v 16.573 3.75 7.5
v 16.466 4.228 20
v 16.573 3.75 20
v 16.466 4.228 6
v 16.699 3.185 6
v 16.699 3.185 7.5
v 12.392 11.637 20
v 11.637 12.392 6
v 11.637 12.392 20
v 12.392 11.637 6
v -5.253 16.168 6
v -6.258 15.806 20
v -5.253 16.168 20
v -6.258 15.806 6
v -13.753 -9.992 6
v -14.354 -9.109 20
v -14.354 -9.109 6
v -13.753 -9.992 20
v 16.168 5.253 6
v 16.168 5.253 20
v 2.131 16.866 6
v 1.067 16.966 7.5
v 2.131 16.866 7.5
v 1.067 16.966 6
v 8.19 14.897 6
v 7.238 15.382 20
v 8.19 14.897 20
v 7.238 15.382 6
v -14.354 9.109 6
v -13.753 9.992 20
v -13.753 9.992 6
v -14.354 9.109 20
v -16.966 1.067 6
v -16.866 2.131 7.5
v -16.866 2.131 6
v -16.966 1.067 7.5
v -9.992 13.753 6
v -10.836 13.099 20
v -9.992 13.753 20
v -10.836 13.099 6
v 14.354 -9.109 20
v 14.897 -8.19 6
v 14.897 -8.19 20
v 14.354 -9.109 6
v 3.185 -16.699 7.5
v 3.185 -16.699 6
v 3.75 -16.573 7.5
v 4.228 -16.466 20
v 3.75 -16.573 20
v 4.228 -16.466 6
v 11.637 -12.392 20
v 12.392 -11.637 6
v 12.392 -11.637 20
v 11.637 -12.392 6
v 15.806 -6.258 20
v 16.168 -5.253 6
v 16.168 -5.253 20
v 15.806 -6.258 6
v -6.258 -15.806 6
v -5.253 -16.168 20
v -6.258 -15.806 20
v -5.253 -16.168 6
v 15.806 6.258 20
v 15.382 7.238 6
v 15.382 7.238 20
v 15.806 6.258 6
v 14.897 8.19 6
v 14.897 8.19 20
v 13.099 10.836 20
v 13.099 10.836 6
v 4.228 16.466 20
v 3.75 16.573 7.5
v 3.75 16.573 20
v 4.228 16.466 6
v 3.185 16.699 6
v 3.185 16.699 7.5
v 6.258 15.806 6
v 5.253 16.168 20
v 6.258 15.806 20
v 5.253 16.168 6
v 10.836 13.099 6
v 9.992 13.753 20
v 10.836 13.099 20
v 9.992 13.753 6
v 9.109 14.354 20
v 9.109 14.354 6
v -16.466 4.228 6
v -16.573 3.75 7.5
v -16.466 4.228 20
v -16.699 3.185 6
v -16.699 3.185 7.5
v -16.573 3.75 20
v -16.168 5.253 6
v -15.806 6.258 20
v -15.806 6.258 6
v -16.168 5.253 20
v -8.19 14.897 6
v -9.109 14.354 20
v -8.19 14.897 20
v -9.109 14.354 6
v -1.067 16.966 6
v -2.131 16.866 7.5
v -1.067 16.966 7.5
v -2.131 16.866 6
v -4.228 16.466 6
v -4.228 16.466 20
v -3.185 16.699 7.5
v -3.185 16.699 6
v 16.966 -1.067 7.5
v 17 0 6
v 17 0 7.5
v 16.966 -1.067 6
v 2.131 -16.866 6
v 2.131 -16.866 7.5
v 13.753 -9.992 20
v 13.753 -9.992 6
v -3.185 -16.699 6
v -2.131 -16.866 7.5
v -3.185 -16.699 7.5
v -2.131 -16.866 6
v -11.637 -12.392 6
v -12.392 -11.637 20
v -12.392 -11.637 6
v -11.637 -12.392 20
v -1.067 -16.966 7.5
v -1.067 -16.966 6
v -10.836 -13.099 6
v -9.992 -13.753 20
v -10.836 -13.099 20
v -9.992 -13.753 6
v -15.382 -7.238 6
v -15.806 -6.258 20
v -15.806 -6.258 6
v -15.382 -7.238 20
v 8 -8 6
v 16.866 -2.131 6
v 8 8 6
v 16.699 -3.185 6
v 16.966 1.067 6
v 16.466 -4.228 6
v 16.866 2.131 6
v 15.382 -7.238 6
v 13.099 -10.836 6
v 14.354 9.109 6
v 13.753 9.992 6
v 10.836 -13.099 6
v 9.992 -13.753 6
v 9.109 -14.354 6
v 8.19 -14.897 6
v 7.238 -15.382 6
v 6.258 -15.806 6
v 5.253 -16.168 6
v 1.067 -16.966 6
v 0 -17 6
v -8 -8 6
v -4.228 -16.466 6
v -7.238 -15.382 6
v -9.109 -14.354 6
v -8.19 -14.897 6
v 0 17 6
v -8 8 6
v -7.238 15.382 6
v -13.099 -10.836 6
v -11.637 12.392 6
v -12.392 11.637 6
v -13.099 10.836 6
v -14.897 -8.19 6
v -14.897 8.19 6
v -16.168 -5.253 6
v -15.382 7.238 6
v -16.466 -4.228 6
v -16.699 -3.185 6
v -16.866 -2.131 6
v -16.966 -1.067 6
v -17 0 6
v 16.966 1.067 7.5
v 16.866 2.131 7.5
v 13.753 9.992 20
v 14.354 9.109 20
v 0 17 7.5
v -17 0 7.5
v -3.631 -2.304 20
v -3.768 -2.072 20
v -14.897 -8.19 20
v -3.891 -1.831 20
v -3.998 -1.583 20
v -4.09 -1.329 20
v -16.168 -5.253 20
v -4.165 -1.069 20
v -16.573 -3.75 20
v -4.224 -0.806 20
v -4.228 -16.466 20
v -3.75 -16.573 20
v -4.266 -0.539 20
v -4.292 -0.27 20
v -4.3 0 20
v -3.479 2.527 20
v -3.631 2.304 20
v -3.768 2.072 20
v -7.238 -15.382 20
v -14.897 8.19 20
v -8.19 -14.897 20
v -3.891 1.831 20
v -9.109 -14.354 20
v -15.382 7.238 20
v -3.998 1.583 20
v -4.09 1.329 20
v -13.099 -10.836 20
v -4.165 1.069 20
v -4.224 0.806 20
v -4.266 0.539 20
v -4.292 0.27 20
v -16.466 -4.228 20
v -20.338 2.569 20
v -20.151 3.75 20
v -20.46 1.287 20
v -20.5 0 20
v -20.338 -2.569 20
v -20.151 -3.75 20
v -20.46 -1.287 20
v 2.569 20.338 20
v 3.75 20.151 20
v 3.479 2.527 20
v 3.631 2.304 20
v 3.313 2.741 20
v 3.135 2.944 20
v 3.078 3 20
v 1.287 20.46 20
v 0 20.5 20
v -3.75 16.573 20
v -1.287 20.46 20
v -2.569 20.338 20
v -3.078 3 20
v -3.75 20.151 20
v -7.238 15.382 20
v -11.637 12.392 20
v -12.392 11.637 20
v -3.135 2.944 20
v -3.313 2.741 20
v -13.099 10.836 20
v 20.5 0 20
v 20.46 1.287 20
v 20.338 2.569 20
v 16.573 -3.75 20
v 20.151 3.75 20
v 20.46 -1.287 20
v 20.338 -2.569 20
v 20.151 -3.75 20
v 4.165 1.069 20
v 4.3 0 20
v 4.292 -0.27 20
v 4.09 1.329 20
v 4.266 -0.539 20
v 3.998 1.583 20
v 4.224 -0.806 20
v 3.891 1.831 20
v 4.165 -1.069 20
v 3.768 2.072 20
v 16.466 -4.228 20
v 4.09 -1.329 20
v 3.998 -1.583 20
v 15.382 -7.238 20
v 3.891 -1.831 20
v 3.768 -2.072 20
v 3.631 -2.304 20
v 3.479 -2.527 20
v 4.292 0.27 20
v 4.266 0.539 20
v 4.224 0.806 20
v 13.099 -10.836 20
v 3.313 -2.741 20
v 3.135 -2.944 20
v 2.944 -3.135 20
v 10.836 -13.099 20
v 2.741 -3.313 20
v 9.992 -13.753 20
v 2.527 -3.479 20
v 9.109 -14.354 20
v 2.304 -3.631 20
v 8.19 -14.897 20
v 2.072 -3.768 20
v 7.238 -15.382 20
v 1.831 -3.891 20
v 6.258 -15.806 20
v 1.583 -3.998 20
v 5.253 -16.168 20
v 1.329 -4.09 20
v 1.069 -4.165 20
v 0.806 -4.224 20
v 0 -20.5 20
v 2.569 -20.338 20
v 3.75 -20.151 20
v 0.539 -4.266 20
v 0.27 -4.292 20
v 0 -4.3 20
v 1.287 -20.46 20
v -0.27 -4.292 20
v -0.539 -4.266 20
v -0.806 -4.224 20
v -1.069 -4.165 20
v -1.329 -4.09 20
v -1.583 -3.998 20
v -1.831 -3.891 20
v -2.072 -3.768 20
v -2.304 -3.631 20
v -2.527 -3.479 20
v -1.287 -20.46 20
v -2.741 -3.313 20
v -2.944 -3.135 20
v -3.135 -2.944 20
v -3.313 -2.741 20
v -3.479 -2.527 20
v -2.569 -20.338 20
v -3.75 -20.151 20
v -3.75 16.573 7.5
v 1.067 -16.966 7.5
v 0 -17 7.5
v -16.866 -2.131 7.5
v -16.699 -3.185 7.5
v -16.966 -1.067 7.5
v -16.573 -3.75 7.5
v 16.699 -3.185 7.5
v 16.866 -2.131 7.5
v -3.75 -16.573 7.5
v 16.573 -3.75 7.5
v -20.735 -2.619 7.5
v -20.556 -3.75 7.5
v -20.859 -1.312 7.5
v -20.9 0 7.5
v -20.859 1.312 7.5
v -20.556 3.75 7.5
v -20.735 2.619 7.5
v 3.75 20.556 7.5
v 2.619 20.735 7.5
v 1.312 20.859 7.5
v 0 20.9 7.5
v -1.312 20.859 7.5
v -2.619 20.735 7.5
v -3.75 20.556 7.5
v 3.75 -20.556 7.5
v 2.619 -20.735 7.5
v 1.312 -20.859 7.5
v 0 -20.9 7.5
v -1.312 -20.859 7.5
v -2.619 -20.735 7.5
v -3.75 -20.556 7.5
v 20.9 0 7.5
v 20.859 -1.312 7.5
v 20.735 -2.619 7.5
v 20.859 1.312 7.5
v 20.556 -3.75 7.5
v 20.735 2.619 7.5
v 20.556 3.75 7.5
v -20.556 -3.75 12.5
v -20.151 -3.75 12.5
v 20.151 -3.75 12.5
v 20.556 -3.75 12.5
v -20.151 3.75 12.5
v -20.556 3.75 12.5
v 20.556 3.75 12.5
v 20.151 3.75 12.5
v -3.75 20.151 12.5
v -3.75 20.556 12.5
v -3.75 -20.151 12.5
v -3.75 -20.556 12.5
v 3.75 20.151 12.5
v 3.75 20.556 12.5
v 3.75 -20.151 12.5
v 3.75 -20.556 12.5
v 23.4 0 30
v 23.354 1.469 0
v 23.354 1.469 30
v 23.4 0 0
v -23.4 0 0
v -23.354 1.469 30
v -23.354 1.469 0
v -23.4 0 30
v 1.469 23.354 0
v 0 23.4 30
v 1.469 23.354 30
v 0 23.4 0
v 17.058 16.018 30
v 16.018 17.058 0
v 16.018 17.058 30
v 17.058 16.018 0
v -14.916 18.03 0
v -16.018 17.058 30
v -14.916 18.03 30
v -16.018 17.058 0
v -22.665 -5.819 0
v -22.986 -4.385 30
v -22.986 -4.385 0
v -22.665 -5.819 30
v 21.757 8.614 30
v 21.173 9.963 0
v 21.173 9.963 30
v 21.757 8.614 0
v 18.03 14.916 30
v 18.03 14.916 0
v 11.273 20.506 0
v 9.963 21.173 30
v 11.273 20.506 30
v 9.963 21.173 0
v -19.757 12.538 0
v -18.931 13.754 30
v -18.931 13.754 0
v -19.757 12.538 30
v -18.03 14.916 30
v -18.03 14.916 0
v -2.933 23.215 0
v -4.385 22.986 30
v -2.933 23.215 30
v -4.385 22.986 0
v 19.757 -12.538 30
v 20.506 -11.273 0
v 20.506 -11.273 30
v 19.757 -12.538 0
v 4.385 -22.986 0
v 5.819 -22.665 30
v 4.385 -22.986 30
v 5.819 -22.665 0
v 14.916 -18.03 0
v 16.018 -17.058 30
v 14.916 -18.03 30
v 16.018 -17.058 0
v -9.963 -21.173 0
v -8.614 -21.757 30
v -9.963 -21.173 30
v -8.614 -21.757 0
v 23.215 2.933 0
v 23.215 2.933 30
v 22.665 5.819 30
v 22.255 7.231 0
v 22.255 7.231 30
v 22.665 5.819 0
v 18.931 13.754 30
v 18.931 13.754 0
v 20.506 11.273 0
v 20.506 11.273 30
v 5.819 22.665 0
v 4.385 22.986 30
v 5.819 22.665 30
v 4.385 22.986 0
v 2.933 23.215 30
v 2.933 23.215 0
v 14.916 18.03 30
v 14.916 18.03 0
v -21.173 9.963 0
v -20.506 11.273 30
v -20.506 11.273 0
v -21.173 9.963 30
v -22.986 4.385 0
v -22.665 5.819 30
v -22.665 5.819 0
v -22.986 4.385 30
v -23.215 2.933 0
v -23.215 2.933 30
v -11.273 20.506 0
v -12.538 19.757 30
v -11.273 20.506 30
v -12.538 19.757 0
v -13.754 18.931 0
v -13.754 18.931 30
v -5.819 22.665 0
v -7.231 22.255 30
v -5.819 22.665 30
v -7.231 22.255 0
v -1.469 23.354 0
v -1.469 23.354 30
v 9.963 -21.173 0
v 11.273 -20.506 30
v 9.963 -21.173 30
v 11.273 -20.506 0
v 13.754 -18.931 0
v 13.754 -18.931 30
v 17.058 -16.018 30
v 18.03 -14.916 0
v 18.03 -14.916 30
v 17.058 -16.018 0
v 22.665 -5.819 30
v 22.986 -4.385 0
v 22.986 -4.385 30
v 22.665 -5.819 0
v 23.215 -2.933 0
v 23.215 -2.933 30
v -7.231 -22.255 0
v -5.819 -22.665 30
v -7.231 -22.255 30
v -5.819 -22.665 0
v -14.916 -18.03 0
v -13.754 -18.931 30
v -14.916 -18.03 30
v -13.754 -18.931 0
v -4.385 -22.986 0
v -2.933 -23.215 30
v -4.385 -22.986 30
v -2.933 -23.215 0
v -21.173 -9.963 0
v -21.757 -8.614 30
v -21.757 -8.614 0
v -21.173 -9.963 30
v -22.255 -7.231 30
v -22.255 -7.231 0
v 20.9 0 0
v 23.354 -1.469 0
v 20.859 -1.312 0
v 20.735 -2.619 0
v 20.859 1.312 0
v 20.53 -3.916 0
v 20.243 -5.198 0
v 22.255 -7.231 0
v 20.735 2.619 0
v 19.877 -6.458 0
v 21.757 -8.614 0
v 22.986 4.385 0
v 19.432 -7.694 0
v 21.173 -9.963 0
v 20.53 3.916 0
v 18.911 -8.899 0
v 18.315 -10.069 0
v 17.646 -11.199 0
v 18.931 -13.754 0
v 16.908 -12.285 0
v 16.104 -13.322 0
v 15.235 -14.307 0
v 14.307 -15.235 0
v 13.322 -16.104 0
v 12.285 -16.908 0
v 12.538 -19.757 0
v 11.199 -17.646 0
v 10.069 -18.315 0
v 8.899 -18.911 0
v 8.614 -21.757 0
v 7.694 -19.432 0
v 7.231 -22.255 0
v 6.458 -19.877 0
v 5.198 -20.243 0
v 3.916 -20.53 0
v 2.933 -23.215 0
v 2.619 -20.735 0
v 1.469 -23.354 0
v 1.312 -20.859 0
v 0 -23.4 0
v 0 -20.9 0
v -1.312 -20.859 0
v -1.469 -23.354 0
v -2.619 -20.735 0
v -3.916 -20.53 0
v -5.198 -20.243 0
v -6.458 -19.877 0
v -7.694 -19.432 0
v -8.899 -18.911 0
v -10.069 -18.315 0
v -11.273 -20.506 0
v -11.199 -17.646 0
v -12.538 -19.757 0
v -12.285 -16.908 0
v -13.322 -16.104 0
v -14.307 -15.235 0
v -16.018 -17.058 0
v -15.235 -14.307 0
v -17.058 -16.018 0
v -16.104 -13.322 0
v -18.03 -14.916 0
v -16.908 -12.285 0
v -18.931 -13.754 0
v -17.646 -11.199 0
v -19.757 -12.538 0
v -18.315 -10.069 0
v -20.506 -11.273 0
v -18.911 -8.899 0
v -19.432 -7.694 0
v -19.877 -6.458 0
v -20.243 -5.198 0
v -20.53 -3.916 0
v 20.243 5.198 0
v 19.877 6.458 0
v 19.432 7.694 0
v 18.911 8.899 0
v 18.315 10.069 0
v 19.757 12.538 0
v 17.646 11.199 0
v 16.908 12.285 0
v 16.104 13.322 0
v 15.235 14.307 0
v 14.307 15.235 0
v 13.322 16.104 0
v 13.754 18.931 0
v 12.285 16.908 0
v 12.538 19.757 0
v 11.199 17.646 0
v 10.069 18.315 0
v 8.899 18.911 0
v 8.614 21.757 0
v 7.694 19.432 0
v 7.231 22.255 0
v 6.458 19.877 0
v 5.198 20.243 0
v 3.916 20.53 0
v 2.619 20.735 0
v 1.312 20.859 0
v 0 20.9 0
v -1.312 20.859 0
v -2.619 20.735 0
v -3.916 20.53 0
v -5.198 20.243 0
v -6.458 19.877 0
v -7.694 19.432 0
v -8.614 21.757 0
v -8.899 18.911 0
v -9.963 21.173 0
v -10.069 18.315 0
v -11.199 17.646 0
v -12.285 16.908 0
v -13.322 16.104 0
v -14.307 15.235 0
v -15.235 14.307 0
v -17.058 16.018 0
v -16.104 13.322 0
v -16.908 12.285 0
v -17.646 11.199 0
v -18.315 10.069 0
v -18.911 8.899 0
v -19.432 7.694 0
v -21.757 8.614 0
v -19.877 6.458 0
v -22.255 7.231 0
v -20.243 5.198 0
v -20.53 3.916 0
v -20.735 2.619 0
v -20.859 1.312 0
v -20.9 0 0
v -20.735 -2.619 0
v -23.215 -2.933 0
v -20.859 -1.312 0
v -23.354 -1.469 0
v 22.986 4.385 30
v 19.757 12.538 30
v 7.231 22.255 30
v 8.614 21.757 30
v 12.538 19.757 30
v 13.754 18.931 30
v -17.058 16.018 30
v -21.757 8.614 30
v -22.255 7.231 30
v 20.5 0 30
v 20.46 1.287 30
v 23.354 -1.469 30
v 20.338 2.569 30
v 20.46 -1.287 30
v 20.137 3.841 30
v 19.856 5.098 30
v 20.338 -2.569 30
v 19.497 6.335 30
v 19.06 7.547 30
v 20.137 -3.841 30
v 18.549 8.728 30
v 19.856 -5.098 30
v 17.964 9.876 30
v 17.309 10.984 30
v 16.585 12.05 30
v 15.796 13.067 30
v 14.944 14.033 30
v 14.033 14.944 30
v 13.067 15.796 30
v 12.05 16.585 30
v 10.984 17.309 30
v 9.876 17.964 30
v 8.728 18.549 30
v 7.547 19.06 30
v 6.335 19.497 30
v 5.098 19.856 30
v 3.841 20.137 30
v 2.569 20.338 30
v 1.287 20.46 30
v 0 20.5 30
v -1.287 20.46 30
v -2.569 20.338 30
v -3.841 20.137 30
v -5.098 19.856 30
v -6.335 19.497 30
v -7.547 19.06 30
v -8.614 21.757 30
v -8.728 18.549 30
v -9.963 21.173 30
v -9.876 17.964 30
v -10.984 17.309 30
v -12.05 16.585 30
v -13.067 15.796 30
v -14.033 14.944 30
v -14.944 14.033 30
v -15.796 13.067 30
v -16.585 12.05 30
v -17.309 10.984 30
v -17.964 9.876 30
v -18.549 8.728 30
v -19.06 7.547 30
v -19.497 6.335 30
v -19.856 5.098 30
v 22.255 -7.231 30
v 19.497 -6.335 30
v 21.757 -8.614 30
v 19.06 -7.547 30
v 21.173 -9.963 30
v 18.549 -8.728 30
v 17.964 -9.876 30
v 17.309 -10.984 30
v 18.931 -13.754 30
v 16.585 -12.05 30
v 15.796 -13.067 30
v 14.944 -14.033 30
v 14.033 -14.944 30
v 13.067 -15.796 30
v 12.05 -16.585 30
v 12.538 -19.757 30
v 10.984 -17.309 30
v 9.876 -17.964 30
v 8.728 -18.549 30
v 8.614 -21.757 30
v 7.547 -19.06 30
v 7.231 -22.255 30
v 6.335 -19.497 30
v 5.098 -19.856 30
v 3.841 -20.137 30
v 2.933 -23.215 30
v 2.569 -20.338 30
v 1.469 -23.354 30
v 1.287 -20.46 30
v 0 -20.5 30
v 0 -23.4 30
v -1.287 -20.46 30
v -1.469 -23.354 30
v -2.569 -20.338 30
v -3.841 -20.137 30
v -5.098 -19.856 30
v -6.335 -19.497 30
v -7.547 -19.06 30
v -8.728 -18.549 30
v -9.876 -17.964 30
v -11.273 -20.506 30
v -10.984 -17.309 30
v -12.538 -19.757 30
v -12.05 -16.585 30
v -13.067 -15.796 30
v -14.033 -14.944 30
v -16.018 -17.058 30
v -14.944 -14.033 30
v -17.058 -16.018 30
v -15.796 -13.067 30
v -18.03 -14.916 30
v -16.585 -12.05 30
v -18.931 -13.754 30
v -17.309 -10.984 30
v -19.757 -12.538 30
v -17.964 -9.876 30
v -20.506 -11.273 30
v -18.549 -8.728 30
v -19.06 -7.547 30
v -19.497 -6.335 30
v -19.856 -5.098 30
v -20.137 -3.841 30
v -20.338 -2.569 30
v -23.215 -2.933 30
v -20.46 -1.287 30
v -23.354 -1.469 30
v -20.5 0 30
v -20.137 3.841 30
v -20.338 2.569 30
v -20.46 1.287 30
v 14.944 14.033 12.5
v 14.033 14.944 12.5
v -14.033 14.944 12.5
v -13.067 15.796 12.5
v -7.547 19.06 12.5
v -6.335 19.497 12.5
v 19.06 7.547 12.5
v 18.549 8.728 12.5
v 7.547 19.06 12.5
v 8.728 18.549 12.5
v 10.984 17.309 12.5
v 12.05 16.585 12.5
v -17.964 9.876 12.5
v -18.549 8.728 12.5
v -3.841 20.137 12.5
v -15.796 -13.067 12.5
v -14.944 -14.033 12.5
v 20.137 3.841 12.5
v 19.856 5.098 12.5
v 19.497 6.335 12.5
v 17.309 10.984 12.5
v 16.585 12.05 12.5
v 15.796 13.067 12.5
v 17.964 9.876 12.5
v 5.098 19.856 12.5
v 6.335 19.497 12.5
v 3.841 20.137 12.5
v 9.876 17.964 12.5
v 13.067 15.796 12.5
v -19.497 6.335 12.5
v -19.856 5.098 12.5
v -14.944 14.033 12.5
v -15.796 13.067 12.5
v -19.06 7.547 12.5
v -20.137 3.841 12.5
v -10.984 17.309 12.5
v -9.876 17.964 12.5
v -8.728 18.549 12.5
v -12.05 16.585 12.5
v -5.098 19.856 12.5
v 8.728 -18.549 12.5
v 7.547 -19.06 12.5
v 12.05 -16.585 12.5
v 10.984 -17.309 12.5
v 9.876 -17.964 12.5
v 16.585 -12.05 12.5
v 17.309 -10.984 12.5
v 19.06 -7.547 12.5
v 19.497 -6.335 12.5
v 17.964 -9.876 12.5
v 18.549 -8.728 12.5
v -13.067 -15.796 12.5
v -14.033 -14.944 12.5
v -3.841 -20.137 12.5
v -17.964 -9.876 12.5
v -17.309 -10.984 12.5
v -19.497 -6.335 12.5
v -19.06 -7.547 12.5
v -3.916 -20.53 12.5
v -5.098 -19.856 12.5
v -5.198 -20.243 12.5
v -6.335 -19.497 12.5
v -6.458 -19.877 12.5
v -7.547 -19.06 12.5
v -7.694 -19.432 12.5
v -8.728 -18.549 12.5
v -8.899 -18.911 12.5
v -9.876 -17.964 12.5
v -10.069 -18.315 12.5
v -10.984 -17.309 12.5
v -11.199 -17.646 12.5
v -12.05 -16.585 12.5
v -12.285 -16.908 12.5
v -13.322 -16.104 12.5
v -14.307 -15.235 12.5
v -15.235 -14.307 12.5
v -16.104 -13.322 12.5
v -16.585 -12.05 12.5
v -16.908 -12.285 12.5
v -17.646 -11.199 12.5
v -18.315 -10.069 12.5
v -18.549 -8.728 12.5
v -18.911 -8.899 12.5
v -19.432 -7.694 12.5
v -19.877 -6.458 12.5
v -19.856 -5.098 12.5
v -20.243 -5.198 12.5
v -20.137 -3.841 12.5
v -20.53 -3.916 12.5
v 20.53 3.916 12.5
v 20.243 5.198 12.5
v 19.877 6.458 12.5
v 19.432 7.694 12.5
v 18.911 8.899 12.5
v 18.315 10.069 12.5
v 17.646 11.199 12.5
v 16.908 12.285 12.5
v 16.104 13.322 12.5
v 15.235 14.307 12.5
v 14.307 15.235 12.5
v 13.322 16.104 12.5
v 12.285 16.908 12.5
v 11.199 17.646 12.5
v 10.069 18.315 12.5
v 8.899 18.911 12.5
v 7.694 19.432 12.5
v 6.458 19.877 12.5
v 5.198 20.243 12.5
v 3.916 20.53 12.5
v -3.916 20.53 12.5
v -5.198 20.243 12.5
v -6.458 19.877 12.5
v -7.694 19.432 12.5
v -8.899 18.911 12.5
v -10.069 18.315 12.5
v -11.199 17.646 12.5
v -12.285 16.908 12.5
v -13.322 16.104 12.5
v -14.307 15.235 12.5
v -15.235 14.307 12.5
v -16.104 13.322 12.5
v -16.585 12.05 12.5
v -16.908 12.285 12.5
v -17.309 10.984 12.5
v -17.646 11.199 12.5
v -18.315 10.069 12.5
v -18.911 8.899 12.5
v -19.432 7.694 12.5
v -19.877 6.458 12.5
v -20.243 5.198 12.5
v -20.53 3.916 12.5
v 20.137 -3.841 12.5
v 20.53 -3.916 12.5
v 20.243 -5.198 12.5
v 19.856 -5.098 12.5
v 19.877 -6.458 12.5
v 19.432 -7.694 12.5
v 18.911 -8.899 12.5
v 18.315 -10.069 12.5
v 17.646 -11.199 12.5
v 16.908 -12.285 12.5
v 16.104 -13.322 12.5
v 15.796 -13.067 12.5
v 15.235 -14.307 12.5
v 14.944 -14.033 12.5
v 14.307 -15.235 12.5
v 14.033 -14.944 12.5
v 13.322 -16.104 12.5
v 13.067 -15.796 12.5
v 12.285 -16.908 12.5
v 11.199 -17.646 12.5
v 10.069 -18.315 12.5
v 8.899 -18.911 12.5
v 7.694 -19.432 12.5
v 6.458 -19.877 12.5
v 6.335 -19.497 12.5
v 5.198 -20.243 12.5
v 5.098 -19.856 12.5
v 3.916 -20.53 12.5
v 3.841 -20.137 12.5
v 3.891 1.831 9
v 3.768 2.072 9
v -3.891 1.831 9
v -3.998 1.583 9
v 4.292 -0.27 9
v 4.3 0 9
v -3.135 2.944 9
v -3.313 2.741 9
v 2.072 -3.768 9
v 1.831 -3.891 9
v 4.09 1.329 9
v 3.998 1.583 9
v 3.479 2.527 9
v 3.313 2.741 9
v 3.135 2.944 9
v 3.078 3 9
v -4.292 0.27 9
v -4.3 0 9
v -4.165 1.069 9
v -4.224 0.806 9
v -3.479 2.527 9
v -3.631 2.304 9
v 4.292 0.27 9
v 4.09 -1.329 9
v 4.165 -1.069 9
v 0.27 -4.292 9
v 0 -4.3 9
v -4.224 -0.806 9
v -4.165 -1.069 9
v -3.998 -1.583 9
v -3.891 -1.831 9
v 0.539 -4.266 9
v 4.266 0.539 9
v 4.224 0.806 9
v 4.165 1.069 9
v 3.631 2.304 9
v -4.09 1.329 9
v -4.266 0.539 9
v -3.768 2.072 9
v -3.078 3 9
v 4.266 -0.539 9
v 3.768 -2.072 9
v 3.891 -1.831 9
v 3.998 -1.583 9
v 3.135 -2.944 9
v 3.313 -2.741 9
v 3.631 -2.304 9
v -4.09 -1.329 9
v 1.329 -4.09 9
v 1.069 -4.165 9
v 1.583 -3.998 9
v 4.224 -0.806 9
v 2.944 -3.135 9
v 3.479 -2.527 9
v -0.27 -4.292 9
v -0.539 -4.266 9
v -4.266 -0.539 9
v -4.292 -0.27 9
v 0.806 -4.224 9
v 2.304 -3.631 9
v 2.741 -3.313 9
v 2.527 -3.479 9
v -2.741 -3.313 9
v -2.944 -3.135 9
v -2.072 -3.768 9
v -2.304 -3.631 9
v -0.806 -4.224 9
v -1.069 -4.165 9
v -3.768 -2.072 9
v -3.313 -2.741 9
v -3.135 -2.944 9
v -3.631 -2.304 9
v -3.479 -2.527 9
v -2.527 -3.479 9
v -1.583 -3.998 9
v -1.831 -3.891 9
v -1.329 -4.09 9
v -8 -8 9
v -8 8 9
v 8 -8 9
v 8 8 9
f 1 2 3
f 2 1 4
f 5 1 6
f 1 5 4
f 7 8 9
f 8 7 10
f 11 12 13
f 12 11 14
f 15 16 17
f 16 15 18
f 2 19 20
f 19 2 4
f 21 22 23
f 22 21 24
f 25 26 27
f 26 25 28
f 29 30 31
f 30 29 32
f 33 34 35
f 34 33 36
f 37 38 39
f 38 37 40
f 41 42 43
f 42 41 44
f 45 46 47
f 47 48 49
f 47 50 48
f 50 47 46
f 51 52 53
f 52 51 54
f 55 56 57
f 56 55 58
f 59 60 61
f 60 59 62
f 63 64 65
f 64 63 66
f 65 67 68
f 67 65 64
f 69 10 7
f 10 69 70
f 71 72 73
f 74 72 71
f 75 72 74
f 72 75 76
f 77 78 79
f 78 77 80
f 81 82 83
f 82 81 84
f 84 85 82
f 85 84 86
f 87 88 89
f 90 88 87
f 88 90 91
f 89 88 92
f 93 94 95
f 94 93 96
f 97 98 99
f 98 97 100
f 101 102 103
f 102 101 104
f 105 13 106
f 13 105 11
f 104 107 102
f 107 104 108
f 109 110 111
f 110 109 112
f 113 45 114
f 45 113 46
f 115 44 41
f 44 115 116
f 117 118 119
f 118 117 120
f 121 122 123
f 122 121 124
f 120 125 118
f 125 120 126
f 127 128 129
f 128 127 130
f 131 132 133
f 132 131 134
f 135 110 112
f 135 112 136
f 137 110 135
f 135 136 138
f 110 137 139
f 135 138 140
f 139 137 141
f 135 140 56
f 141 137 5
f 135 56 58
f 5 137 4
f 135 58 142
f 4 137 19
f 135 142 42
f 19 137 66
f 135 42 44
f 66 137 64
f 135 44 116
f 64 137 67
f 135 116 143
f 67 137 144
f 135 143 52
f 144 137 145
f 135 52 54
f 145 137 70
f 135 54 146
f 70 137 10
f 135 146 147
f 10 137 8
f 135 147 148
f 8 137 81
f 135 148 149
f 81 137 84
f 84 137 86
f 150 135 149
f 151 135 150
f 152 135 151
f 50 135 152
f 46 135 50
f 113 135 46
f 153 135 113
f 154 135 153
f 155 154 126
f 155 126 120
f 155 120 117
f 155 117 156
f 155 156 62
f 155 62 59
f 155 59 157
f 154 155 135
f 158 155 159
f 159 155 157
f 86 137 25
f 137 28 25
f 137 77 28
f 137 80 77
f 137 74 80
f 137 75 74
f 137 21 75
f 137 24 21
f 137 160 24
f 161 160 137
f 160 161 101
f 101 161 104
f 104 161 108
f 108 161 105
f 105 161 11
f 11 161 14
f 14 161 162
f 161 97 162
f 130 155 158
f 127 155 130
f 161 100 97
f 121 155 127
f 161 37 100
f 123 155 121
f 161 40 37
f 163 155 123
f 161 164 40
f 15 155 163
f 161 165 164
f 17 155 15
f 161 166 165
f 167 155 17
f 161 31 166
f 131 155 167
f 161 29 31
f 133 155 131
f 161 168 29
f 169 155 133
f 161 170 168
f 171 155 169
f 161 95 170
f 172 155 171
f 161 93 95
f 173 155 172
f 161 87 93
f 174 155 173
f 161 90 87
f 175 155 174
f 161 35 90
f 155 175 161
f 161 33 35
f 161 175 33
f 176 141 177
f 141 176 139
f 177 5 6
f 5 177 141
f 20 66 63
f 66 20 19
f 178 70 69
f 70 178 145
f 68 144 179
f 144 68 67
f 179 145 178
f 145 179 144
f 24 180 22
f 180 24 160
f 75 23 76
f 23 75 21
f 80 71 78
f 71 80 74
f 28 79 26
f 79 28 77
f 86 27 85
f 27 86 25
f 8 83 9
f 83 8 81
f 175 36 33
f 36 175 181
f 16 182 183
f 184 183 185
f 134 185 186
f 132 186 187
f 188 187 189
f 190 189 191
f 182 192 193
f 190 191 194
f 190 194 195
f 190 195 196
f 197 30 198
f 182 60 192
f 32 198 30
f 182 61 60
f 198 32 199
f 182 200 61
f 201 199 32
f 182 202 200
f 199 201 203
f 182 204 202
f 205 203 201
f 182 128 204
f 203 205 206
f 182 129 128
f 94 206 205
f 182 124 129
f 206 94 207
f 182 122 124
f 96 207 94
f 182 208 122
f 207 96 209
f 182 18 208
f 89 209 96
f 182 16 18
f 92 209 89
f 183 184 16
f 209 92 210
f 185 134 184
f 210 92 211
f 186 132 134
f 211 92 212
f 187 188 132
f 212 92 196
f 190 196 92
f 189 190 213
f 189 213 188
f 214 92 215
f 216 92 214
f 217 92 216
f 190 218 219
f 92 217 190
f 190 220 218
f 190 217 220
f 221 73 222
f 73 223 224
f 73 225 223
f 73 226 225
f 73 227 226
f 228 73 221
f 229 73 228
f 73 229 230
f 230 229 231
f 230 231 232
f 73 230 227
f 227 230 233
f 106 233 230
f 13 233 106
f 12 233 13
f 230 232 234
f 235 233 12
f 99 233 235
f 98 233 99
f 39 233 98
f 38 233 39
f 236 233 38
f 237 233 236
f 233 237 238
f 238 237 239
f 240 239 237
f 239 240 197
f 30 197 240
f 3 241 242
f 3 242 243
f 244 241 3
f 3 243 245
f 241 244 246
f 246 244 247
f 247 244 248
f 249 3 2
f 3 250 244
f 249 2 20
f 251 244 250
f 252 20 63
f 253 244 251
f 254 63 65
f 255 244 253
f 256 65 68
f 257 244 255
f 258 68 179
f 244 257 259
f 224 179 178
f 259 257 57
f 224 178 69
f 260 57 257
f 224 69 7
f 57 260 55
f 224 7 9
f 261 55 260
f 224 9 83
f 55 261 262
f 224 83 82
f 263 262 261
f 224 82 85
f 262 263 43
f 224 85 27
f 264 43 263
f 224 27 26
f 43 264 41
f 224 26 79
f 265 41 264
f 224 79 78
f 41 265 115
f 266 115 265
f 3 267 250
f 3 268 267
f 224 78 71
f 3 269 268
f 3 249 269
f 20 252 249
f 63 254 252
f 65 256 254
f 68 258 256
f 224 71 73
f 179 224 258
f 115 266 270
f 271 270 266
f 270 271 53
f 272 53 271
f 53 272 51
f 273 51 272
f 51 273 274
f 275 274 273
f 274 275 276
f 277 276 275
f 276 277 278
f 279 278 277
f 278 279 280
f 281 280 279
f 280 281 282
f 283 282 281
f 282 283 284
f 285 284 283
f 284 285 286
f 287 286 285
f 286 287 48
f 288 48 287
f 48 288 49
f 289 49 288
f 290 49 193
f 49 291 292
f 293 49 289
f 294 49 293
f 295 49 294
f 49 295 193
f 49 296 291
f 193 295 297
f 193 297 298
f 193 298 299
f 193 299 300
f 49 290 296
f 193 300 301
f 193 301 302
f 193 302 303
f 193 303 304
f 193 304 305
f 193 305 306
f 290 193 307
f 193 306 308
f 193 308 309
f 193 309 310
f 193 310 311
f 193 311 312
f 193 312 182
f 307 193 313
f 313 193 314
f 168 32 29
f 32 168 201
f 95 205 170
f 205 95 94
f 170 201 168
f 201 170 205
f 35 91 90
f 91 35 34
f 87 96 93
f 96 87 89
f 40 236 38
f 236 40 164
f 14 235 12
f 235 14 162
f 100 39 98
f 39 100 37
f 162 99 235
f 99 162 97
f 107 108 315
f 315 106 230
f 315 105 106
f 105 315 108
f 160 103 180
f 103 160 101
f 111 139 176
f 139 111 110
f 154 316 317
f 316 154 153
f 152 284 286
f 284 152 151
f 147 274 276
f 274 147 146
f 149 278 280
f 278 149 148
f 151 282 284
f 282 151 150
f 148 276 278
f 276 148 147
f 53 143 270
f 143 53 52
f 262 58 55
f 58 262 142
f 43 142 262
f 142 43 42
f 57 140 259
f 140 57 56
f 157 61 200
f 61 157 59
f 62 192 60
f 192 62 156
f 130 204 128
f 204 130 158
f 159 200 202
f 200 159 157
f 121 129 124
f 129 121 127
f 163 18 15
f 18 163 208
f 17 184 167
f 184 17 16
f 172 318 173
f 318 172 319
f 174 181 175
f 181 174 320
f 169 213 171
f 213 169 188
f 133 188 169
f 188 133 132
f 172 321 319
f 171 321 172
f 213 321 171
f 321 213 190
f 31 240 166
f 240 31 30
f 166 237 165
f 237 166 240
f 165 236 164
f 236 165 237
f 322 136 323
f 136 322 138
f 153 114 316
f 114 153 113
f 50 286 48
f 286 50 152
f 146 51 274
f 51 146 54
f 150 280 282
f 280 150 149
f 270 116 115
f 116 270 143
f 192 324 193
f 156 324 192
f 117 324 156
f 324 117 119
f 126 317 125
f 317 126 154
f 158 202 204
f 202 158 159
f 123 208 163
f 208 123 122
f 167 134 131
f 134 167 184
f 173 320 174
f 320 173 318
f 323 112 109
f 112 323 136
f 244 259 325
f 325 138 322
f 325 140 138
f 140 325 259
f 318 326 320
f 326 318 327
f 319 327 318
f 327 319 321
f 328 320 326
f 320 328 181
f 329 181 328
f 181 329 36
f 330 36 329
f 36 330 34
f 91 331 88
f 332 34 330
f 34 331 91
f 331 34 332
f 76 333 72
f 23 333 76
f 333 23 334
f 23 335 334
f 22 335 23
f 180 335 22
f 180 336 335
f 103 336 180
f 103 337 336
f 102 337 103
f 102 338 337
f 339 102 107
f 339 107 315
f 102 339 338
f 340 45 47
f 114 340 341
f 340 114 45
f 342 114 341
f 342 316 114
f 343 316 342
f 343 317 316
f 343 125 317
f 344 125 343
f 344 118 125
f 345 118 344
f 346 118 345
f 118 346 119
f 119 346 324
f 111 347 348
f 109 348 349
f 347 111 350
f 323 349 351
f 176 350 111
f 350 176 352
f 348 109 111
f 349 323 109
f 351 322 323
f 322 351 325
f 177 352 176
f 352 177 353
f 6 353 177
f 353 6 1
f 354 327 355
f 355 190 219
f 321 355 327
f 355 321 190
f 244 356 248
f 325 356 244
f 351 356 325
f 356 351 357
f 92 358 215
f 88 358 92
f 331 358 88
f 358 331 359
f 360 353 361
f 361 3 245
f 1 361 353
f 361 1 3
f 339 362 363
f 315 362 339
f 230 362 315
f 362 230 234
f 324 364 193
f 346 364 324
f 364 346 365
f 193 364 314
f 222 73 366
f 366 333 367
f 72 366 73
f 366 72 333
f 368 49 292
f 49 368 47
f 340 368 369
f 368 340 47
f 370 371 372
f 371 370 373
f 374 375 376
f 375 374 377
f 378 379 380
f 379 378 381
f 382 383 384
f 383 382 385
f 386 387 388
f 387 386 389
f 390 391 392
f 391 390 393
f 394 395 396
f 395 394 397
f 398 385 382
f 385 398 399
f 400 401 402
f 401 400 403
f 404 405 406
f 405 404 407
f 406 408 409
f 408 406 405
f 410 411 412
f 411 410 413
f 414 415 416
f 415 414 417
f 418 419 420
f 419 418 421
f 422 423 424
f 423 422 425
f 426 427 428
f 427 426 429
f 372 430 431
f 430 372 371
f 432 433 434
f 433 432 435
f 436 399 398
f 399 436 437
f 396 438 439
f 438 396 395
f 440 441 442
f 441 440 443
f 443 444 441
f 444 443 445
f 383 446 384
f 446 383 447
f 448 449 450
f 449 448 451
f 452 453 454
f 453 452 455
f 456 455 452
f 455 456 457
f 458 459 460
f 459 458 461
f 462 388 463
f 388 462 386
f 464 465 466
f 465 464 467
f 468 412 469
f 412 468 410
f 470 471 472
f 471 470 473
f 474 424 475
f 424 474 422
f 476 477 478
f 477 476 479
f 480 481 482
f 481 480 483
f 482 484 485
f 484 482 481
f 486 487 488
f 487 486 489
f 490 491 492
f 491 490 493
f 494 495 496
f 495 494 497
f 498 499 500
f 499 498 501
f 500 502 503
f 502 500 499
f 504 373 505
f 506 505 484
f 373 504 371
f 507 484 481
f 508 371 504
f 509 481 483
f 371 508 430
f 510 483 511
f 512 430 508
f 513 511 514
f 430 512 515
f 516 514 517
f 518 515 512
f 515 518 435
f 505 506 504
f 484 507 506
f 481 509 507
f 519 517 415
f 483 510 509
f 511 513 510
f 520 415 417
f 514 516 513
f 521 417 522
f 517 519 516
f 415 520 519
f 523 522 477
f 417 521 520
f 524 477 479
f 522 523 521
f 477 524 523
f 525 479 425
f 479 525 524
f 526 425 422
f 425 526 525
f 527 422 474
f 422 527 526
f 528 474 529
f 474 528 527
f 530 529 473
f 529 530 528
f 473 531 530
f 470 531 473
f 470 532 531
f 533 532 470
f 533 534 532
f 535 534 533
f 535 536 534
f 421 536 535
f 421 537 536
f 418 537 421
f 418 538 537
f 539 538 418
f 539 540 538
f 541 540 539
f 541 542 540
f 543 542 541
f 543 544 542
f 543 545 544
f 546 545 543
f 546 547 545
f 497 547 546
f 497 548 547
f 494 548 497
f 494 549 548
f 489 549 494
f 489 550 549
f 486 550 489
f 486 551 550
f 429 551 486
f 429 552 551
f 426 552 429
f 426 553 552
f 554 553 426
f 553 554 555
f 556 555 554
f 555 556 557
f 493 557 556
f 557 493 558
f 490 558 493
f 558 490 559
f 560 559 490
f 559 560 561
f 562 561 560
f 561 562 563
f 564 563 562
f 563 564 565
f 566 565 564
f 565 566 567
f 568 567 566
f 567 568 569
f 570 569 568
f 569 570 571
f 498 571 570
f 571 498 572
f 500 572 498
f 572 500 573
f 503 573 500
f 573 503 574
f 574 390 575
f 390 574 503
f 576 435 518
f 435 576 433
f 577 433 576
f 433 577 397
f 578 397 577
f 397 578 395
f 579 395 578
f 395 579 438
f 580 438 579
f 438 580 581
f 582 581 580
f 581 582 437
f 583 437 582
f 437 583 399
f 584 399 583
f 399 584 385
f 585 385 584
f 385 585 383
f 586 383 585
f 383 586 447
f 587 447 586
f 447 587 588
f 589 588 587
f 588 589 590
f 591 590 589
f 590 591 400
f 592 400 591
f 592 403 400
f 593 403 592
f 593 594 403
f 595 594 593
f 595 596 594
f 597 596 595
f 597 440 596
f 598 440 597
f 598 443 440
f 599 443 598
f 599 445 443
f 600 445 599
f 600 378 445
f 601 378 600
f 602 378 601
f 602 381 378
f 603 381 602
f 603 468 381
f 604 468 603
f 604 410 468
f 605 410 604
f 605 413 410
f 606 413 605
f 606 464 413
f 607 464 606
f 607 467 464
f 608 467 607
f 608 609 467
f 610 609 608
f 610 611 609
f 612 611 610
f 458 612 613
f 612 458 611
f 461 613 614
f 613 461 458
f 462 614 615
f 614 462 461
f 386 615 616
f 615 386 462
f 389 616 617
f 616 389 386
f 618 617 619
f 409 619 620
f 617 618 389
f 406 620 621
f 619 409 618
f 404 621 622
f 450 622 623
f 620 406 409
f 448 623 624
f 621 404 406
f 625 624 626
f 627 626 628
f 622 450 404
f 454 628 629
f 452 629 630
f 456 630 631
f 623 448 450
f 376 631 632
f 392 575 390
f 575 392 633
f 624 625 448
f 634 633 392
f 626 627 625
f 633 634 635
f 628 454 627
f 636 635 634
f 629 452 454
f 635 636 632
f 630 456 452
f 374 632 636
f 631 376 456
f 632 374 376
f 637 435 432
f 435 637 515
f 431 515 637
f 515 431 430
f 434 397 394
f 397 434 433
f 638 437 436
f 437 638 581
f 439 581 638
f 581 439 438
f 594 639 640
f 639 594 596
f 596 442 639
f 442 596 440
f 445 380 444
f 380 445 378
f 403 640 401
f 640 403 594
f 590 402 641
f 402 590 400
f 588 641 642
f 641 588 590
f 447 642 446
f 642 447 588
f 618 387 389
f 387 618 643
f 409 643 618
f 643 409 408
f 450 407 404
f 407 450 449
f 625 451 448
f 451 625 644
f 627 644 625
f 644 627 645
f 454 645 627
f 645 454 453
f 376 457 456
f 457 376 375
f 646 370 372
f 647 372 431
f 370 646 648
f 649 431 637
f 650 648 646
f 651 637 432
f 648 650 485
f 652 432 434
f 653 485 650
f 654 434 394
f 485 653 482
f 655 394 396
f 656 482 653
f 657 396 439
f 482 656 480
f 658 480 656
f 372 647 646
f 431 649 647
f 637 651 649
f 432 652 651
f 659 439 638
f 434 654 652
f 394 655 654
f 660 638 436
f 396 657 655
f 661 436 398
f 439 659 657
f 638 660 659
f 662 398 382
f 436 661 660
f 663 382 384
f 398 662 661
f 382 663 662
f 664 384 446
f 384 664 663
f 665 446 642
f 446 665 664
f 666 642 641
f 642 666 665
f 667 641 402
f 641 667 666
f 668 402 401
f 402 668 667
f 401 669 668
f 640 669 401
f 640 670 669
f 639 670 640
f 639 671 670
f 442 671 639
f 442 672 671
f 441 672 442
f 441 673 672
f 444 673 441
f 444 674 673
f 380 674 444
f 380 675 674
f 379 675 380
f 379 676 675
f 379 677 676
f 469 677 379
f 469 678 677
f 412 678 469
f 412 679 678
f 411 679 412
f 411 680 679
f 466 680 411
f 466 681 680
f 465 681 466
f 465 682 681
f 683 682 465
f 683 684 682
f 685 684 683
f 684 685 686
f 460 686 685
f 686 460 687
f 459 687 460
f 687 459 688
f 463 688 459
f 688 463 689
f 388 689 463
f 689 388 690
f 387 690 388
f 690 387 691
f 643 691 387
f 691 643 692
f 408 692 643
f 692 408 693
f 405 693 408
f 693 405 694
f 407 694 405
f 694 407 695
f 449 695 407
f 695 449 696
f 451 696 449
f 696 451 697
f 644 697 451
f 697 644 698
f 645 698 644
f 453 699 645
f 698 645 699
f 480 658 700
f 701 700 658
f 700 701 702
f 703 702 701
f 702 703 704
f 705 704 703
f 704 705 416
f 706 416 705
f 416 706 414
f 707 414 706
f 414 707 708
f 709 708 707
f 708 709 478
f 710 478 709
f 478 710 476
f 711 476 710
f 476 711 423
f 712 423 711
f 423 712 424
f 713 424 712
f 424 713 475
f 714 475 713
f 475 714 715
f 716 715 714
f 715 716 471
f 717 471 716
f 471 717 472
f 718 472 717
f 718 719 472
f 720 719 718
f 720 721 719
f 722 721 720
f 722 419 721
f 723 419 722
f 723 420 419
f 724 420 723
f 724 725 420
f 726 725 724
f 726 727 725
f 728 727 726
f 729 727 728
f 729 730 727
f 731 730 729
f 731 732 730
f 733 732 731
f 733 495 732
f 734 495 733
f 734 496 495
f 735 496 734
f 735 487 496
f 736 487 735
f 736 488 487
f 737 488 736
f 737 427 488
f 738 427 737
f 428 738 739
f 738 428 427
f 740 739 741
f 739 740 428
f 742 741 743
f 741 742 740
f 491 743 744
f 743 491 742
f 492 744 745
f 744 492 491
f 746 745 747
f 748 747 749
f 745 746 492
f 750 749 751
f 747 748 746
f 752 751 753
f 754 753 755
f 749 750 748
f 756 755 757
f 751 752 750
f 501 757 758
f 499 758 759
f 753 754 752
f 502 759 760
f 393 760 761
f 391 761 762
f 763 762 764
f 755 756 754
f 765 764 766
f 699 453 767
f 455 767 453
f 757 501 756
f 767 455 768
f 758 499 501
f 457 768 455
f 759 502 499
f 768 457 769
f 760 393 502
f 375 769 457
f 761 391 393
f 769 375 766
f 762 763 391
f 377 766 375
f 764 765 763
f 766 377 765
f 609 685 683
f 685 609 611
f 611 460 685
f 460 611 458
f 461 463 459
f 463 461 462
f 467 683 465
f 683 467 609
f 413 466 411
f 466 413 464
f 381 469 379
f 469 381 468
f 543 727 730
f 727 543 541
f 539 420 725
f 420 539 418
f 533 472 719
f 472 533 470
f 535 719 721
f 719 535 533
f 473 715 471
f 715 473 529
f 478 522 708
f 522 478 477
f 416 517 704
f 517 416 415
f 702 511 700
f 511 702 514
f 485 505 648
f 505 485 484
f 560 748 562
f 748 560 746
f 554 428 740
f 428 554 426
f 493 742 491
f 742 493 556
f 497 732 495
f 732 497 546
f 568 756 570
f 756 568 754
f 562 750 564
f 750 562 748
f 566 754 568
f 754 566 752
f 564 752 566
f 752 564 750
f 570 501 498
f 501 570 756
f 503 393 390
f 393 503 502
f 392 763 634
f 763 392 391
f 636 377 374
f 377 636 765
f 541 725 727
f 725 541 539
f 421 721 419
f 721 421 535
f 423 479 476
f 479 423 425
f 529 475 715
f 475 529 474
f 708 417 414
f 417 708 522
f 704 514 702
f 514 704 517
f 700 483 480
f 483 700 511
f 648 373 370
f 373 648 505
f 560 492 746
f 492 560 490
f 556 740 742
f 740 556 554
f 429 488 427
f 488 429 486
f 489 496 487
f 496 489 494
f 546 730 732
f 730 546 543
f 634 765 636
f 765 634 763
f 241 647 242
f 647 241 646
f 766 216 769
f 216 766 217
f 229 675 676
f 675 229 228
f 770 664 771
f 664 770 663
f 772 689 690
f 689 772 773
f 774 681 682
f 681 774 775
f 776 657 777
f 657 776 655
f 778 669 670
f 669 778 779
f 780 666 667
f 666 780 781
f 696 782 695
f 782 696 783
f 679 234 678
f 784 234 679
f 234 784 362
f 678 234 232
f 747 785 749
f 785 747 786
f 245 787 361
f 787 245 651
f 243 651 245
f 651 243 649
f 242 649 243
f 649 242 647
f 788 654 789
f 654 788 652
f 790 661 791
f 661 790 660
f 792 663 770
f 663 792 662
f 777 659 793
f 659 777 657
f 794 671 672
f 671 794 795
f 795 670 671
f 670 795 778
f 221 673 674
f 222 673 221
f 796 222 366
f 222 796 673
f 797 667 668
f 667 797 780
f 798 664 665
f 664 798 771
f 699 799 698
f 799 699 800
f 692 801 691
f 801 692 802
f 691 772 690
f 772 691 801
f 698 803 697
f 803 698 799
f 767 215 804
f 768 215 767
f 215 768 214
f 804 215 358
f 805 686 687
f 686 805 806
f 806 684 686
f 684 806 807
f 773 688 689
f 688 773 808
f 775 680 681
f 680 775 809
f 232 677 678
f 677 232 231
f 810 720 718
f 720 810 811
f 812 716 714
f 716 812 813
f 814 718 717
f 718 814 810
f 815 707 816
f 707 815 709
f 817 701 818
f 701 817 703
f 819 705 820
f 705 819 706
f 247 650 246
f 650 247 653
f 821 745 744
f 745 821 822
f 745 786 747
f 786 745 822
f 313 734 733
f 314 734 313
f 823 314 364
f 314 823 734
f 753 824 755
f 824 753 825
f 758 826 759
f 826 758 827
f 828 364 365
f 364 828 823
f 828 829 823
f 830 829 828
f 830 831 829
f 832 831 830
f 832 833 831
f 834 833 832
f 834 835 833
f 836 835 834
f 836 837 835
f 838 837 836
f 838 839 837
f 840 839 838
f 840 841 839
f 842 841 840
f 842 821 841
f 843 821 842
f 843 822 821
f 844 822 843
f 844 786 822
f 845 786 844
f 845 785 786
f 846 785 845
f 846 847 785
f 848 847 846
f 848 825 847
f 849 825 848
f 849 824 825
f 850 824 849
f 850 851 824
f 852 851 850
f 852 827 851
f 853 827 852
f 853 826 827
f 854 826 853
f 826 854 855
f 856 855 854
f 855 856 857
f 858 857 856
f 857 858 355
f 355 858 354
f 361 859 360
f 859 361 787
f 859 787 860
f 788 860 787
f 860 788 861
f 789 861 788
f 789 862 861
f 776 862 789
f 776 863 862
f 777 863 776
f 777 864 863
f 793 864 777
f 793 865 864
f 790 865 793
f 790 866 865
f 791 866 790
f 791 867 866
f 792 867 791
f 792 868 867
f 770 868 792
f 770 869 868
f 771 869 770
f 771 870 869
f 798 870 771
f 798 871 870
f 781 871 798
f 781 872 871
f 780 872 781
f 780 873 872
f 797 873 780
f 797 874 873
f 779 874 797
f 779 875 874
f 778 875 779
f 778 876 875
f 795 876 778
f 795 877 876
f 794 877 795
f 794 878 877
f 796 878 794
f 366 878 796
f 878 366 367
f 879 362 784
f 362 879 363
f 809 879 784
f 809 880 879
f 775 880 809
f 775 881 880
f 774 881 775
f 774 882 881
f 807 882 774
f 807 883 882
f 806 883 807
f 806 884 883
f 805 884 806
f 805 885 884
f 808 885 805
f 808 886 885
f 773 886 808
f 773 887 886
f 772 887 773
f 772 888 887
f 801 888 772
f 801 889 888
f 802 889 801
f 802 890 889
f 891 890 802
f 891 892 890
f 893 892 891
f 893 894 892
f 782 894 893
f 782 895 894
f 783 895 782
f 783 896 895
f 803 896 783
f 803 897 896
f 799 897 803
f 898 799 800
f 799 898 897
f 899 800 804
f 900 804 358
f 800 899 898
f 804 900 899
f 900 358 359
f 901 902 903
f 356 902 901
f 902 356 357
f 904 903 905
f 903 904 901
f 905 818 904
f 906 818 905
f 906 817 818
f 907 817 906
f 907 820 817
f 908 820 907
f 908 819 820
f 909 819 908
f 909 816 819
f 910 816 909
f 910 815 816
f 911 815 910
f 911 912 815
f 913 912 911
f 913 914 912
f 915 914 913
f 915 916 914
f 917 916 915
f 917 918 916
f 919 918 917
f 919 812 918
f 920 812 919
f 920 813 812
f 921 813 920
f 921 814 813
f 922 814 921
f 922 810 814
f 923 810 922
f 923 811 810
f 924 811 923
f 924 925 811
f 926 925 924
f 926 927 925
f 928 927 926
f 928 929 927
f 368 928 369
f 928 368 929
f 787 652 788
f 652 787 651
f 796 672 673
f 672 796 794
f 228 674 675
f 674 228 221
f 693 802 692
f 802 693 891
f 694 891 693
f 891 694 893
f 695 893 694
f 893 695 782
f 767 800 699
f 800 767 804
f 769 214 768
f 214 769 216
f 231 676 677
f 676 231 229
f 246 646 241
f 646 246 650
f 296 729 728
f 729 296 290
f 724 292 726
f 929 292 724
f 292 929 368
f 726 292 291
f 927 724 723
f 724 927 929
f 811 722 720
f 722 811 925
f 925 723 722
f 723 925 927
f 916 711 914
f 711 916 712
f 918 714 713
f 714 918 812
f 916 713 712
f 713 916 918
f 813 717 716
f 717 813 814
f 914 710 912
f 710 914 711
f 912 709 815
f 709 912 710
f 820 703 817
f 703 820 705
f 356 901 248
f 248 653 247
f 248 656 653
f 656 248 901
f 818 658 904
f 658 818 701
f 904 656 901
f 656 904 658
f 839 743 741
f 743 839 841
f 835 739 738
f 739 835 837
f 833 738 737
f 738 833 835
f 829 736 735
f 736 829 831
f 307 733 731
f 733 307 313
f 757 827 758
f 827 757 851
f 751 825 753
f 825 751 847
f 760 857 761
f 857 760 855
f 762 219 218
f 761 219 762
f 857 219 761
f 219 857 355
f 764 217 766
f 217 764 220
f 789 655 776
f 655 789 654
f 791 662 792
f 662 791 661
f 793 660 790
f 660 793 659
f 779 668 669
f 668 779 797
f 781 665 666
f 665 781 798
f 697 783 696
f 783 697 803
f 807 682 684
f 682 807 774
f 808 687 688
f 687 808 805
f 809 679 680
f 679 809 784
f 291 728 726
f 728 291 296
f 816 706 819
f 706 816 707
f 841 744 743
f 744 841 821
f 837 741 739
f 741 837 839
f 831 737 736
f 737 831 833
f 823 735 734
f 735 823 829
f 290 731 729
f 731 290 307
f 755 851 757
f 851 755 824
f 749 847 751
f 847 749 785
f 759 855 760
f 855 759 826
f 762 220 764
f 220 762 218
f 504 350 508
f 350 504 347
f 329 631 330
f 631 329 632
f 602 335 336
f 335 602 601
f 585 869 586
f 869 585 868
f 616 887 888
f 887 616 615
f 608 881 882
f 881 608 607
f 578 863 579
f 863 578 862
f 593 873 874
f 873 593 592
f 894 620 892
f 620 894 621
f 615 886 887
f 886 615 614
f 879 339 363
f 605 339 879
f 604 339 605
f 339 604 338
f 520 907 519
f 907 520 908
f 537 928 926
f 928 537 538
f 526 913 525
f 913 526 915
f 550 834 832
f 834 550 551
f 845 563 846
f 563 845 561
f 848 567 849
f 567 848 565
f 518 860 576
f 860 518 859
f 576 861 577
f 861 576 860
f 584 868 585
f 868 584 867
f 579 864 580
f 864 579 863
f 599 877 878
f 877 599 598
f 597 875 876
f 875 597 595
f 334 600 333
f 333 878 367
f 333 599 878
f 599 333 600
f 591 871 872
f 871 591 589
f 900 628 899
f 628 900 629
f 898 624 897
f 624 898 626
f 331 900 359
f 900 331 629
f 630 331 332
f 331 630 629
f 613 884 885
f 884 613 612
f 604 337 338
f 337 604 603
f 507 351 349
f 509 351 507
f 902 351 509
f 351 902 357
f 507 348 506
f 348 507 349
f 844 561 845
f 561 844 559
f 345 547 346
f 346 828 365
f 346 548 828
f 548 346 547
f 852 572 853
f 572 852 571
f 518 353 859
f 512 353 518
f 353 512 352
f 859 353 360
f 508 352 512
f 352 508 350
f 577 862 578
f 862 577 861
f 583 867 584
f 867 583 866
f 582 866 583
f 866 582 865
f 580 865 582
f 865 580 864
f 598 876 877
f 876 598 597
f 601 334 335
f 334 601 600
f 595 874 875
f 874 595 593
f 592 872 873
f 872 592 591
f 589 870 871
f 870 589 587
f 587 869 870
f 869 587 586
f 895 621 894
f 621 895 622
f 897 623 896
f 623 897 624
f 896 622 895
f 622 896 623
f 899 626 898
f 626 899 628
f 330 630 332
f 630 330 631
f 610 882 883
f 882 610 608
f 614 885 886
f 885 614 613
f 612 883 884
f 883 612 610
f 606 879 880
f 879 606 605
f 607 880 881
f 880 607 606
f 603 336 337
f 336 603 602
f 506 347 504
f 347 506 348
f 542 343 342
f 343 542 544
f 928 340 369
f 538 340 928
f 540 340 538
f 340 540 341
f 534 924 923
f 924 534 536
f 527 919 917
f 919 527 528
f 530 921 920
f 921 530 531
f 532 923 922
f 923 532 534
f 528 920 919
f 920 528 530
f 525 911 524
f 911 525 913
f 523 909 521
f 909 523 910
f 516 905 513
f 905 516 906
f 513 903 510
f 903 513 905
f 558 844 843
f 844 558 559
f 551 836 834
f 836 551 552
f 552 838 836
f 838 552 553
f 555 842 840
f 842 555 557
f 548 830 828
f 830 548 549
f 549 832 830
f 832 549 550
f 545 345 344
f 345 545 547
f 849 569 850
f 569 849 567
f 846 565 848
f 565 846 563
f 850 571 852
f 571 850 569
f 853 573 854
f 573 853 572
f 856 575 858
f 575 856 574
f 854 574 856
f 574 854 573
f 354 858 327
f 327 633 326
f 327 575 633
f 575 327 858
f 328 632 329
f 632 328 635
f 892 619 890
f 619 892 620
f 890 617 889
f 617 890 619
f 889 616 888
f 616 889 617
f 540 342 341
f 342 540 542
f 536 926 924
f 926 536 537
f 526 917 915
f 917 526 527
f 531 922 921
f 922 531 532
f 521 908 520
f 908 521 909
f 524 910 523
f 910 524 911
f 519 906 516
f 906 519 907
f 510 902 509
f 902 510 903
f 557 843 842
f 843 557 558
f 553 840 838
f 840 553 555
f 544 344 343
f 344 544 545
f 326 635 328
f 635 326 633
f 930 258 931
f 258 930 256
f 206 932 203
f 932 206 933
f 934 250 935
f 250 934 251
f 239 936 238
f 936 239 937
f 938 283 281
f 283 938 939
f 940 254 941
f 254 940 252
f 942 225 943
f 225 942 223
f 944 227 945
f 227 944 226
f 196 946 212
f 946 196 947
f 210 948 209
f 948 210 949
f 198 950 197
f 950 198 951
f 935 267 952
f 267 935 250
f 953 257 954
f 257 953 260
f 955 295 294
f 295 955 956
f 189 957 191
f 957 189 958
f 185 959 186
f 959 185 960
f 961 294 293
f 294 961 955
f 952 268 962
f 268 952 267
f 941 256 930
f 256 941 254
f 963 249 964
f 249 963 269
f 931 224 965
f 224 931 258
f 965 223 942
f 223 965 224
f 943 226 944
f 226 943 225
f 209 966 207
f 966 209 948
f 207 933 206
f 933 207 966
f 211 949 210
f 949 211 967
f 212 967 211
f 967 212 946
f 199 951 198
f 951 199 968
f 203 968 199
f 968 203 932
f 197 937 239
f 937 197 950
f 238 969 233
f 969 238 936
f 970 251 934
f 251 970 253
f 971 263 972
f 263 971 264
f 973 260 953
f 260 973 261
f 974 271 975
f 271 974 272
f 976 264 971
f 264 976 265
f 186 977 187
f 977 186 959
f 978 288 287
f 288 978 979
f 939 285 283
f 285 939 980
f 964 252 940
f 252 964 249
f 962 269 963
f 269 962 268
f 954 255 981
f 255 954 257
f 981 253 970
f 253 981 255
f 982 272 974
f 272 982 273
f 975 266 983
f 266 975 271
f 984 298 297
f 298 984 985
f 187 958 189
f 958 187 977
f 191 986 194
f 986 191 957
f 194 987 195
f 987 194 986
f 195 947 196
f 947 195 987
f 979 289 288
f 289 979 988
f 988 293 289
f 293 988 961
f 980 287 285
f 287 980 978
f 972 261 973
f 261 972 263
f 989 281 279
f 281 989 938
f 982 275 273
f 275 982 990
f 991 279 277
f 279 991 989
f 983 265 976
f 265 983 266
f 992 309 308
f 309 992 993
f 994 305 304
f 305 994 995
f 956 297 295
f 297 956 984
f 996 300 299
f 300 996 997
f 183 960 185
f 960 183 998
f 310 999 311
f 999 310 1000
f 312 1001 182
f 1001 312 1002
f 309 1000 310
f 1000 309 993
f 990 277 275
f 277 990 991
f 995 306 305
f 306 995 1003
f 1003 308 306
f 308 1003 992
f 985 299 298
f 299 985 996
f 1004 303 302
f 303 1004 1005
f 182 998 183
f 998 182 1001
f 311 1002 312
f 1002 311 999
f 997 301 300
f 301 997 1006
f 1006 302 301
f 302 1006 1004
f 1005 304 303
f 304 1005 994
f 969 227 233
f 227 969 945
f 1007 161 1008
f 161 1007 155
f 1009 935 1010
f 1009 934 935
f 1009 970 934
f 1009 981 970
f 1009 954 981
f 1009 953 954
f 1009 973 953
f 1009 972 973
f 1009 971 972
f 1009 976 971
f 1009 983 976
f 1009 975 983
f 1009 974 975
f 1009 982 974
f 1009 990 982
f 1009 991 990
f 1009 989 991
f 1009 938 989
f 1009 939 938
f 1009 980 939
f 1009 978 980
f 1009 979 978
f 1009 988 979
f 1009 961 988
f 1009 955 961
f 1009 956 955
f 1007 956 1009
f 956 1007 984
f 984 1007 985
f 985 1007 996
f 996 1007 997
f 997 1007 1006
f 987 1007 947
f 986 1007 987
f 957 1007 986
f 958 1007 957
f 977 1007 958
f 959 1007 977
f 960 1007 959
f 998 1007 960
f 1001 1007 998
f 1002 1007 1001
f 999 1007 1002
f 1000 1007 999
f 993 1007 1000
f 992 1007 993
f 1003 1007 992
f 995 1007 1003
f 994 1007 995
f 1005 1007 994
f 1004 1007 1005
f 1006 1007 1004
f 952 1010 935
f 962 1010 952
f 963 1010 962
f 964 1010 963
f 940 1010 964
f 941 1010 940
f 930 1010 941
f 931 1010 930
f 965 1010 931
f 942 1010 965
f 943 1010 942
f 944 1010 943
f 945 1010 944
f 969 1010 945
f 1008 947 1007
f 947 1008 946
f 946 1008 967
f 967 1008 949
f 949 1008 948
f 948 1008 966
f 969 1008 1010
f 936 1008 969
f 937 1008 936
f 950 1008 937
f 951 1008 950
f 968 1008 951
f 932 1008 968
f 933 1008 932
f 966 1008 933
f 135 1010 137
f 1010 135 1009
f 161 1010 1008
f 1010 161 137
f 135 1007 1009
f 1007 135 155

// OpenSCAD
$fn=100;
union(){
    difference(){
        cylinder(30,23.4,23.4);
        translate([0,0,12.5])cylinder(30,20.5,20.5);
        cylinder(12.5,20.9,20.9);
    }
    difference(){
        union(){
            translate([0,0,6])cylinder(14,17,17);
            translate([-21,-3.75,7.5])cube([42,7.5,12.5]);
            rotate([0,0,90])translate([-21,-3.75,7.5])cube([42,7.5,12.5]);
        }
        translate([-8,-8,6])cube([16,16,3]);
        difference(){
            cylinder(30,4.3,4.3);
            translate([-4.25,3,0])cube([17,3,40]);
        }
    }
}
